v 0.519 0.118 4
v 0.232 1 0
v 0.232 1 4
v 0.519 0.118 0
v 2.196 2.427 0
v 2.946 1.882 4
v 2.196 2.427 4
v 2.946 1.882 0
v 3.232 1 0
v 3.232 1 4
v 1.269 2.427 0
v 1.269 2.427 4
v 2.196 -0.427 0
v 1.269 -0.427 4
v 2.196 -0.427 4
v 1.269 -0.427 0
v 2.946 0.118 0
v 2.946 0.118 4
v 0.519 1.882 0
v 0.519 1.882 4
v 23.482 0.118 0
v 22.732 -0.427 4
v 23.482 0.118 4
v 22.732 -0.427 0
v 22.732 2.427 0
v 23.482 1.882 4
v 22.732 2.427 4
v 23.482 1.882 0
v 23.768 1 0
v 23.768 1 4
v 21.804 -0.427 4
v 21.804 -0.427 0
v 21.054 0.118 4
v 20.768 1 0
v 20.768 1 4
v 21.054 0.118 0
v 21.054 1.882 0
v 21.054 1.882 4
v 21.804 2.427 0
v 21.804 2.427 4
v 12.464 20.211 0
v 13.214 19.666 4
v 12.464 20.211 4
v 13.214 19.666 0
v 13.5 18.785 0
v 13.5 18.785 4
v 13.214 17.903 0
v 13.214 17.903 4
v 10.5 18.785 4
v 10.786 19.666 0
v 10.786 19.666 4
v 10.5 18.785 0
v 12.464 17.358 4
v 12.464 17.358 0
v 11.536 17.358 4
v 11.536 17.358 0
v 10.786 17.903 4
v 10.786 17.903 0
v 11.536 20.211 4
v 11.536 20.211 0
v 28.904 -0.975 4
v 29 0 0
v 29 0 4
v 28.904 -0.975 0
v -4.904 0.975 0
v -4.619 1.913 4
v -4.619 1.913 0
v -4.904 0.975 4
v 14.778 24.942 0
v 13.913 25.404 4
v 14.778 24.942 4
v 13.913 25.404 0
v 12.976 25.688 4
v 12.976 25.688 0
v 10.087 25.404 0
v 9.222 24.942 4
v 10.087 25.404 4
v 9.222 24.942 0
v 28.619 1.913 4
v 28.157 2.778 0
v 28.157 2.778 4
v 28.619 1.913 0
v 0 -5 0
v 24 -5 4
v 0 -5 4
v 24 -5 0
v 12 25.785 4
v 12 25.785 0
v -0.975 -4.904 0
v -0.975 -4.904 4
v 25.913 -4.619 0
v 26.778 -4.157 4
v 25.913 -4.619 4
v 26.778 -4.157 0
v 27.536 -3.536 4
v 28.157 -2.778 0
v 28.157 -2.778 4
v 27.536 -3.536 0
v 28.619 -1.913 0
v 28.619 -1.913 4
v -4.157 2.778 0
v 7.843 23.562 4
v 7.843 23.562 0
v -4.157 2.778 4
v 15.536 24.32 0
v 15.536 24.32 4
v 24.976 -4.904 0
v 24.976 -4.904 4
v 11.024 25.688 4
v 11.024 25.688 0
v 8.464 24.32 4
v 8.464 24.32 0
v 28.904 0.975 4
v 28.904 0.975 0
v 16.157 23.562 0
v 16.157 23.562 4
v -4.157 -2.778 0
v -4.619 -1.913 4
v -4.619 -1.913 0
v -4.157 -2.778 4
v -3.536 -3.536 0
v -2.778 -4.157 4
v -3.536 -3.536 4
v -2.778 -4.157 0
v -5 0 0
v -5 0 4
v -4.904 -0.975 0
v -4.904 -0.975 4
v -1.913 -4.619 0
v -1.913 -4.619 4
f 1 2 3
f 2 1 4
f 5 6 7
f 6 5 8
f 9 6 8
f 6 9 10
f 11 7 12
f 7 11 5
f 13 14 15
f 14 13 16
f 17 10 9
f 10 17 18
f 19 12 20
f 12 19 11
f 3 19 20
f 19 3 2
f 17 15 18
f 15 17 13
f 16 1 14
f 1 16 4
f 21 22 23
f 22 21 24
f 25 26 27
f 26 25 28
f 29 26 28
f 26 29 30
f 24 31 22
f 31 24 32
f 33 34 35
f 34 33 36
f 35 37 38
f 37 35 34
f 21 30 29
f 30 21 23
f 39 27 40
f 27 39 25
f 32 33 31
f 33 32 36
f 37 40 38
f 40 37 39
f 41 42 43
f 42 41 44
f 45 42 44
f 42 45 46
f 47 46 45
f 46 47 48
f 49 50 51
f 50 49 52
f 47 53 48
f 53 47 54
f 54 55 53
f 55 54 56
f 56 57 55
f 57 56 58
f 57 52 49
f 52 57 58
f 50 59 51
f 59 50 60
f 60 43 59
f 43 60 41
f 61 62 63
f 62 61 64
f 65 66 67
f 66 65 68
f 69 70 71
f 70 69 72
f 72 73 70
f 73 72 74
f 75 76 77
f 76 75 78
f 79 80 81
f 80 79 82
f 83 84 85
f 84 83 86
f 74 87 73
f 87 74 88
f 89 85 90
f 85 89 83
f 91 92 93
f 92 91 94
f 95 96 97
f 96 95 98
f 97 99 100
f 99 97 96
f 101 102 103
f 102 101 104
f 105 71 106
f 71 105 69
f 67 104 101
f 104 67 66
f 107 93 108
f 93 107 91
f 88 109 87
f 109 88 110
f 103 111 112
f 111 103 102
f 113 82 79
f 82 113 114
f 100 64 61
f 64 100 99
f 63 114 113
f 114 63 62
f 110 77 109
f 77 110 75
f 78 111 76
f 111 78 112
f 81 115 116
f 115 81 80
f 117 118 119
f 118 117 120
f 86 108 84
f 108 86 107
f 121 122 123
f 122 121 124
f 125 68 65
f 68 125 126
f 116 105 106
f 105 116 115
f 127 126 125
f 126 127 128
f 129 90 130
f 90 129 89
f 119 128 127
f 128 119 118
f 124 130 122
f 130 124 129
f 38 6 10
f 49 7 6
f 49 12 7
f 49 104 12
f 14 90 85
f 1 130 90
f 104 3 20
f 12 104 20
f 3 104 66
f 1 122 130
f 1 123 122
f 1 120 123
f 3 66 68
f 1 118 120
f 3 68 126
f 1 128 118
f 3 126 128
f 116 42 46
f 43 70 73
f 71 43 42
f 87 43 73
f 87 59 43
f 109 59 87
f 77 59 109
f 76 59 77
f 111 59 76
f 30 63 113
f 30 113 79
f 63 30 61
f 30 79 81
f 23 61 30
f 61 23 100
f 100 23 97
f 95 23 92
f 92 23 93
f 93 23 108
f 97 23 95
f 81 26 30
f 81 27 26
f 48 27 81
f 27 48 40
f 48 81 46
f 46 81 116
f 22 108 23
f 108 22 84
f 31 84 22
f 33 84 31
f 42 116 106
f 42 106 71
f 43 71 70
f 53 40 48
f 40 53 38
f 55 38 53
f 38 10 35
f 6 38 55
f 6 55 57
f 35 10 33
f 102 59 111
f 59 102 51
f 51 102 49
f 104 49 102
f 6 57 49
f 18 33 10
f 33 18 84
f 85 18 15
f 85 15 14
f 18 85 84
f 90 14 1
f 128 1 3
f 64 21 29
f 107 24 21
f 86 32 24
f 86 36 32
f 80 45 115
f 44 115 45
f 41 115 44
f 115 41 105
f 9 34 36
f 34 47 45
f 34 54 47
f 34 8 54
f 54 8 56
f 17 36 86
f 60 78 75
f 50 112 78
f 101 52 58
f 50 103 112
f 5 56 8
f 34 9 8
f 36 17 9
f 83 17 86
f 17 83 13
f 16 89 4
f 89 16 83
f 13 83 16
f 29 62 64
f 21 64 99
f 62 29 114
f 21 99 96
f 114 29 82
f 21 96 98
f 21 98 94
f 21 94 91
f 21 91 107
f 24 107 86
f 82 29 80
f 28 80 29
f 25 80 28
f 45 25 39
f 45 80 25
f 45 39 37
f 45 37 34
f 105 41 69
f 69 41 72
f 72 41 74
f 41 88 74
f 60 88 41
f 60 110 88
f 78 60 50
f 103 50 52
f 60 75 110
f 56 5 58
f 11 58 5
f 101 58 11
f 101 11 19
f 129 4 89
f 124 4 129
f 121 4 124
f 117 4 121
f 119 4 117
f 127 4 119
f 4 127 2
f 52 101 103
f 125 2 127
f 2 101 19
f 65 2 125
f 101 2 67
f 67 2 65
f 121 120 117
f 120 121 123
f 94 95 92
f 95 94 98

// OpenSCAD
$fa = 1;  // minimal angle, default 12, minimal value 0.01
$fs = 1;  // minimal size of a fragment, default 2, minimal 0.01
// number of fragments, when fn > 0, fa and fs are ignored.
// fn > 100 not recommanded. fn < 50 advisable for performance.
$fn = 0;

Z = 4;
X = 12;
Y = 1;

module hole() {
    translate([0,0,-Z]) cylinder(r=1.5, h=Z*3);
}

module holes() {
    translate([sqrt(3) * Y, Y, 0]) hole();
    translate([2 * X - sqrt(3) * Y, Y, 0]) hole();
    translate([X, sqrt(3) * X - 2 * Y, 0]) hole();
}


module corner() {
    cylinder(r=5, h=Z);
}

module base() {
    hull() {
        corner();
        translate([X * 2, 0, 0]) corner();
        translate([X, sqrt(3) * X, 0]) corner();
    }
}


module main() {
    difference() {
        base();
        holes();
    }
}

main();
